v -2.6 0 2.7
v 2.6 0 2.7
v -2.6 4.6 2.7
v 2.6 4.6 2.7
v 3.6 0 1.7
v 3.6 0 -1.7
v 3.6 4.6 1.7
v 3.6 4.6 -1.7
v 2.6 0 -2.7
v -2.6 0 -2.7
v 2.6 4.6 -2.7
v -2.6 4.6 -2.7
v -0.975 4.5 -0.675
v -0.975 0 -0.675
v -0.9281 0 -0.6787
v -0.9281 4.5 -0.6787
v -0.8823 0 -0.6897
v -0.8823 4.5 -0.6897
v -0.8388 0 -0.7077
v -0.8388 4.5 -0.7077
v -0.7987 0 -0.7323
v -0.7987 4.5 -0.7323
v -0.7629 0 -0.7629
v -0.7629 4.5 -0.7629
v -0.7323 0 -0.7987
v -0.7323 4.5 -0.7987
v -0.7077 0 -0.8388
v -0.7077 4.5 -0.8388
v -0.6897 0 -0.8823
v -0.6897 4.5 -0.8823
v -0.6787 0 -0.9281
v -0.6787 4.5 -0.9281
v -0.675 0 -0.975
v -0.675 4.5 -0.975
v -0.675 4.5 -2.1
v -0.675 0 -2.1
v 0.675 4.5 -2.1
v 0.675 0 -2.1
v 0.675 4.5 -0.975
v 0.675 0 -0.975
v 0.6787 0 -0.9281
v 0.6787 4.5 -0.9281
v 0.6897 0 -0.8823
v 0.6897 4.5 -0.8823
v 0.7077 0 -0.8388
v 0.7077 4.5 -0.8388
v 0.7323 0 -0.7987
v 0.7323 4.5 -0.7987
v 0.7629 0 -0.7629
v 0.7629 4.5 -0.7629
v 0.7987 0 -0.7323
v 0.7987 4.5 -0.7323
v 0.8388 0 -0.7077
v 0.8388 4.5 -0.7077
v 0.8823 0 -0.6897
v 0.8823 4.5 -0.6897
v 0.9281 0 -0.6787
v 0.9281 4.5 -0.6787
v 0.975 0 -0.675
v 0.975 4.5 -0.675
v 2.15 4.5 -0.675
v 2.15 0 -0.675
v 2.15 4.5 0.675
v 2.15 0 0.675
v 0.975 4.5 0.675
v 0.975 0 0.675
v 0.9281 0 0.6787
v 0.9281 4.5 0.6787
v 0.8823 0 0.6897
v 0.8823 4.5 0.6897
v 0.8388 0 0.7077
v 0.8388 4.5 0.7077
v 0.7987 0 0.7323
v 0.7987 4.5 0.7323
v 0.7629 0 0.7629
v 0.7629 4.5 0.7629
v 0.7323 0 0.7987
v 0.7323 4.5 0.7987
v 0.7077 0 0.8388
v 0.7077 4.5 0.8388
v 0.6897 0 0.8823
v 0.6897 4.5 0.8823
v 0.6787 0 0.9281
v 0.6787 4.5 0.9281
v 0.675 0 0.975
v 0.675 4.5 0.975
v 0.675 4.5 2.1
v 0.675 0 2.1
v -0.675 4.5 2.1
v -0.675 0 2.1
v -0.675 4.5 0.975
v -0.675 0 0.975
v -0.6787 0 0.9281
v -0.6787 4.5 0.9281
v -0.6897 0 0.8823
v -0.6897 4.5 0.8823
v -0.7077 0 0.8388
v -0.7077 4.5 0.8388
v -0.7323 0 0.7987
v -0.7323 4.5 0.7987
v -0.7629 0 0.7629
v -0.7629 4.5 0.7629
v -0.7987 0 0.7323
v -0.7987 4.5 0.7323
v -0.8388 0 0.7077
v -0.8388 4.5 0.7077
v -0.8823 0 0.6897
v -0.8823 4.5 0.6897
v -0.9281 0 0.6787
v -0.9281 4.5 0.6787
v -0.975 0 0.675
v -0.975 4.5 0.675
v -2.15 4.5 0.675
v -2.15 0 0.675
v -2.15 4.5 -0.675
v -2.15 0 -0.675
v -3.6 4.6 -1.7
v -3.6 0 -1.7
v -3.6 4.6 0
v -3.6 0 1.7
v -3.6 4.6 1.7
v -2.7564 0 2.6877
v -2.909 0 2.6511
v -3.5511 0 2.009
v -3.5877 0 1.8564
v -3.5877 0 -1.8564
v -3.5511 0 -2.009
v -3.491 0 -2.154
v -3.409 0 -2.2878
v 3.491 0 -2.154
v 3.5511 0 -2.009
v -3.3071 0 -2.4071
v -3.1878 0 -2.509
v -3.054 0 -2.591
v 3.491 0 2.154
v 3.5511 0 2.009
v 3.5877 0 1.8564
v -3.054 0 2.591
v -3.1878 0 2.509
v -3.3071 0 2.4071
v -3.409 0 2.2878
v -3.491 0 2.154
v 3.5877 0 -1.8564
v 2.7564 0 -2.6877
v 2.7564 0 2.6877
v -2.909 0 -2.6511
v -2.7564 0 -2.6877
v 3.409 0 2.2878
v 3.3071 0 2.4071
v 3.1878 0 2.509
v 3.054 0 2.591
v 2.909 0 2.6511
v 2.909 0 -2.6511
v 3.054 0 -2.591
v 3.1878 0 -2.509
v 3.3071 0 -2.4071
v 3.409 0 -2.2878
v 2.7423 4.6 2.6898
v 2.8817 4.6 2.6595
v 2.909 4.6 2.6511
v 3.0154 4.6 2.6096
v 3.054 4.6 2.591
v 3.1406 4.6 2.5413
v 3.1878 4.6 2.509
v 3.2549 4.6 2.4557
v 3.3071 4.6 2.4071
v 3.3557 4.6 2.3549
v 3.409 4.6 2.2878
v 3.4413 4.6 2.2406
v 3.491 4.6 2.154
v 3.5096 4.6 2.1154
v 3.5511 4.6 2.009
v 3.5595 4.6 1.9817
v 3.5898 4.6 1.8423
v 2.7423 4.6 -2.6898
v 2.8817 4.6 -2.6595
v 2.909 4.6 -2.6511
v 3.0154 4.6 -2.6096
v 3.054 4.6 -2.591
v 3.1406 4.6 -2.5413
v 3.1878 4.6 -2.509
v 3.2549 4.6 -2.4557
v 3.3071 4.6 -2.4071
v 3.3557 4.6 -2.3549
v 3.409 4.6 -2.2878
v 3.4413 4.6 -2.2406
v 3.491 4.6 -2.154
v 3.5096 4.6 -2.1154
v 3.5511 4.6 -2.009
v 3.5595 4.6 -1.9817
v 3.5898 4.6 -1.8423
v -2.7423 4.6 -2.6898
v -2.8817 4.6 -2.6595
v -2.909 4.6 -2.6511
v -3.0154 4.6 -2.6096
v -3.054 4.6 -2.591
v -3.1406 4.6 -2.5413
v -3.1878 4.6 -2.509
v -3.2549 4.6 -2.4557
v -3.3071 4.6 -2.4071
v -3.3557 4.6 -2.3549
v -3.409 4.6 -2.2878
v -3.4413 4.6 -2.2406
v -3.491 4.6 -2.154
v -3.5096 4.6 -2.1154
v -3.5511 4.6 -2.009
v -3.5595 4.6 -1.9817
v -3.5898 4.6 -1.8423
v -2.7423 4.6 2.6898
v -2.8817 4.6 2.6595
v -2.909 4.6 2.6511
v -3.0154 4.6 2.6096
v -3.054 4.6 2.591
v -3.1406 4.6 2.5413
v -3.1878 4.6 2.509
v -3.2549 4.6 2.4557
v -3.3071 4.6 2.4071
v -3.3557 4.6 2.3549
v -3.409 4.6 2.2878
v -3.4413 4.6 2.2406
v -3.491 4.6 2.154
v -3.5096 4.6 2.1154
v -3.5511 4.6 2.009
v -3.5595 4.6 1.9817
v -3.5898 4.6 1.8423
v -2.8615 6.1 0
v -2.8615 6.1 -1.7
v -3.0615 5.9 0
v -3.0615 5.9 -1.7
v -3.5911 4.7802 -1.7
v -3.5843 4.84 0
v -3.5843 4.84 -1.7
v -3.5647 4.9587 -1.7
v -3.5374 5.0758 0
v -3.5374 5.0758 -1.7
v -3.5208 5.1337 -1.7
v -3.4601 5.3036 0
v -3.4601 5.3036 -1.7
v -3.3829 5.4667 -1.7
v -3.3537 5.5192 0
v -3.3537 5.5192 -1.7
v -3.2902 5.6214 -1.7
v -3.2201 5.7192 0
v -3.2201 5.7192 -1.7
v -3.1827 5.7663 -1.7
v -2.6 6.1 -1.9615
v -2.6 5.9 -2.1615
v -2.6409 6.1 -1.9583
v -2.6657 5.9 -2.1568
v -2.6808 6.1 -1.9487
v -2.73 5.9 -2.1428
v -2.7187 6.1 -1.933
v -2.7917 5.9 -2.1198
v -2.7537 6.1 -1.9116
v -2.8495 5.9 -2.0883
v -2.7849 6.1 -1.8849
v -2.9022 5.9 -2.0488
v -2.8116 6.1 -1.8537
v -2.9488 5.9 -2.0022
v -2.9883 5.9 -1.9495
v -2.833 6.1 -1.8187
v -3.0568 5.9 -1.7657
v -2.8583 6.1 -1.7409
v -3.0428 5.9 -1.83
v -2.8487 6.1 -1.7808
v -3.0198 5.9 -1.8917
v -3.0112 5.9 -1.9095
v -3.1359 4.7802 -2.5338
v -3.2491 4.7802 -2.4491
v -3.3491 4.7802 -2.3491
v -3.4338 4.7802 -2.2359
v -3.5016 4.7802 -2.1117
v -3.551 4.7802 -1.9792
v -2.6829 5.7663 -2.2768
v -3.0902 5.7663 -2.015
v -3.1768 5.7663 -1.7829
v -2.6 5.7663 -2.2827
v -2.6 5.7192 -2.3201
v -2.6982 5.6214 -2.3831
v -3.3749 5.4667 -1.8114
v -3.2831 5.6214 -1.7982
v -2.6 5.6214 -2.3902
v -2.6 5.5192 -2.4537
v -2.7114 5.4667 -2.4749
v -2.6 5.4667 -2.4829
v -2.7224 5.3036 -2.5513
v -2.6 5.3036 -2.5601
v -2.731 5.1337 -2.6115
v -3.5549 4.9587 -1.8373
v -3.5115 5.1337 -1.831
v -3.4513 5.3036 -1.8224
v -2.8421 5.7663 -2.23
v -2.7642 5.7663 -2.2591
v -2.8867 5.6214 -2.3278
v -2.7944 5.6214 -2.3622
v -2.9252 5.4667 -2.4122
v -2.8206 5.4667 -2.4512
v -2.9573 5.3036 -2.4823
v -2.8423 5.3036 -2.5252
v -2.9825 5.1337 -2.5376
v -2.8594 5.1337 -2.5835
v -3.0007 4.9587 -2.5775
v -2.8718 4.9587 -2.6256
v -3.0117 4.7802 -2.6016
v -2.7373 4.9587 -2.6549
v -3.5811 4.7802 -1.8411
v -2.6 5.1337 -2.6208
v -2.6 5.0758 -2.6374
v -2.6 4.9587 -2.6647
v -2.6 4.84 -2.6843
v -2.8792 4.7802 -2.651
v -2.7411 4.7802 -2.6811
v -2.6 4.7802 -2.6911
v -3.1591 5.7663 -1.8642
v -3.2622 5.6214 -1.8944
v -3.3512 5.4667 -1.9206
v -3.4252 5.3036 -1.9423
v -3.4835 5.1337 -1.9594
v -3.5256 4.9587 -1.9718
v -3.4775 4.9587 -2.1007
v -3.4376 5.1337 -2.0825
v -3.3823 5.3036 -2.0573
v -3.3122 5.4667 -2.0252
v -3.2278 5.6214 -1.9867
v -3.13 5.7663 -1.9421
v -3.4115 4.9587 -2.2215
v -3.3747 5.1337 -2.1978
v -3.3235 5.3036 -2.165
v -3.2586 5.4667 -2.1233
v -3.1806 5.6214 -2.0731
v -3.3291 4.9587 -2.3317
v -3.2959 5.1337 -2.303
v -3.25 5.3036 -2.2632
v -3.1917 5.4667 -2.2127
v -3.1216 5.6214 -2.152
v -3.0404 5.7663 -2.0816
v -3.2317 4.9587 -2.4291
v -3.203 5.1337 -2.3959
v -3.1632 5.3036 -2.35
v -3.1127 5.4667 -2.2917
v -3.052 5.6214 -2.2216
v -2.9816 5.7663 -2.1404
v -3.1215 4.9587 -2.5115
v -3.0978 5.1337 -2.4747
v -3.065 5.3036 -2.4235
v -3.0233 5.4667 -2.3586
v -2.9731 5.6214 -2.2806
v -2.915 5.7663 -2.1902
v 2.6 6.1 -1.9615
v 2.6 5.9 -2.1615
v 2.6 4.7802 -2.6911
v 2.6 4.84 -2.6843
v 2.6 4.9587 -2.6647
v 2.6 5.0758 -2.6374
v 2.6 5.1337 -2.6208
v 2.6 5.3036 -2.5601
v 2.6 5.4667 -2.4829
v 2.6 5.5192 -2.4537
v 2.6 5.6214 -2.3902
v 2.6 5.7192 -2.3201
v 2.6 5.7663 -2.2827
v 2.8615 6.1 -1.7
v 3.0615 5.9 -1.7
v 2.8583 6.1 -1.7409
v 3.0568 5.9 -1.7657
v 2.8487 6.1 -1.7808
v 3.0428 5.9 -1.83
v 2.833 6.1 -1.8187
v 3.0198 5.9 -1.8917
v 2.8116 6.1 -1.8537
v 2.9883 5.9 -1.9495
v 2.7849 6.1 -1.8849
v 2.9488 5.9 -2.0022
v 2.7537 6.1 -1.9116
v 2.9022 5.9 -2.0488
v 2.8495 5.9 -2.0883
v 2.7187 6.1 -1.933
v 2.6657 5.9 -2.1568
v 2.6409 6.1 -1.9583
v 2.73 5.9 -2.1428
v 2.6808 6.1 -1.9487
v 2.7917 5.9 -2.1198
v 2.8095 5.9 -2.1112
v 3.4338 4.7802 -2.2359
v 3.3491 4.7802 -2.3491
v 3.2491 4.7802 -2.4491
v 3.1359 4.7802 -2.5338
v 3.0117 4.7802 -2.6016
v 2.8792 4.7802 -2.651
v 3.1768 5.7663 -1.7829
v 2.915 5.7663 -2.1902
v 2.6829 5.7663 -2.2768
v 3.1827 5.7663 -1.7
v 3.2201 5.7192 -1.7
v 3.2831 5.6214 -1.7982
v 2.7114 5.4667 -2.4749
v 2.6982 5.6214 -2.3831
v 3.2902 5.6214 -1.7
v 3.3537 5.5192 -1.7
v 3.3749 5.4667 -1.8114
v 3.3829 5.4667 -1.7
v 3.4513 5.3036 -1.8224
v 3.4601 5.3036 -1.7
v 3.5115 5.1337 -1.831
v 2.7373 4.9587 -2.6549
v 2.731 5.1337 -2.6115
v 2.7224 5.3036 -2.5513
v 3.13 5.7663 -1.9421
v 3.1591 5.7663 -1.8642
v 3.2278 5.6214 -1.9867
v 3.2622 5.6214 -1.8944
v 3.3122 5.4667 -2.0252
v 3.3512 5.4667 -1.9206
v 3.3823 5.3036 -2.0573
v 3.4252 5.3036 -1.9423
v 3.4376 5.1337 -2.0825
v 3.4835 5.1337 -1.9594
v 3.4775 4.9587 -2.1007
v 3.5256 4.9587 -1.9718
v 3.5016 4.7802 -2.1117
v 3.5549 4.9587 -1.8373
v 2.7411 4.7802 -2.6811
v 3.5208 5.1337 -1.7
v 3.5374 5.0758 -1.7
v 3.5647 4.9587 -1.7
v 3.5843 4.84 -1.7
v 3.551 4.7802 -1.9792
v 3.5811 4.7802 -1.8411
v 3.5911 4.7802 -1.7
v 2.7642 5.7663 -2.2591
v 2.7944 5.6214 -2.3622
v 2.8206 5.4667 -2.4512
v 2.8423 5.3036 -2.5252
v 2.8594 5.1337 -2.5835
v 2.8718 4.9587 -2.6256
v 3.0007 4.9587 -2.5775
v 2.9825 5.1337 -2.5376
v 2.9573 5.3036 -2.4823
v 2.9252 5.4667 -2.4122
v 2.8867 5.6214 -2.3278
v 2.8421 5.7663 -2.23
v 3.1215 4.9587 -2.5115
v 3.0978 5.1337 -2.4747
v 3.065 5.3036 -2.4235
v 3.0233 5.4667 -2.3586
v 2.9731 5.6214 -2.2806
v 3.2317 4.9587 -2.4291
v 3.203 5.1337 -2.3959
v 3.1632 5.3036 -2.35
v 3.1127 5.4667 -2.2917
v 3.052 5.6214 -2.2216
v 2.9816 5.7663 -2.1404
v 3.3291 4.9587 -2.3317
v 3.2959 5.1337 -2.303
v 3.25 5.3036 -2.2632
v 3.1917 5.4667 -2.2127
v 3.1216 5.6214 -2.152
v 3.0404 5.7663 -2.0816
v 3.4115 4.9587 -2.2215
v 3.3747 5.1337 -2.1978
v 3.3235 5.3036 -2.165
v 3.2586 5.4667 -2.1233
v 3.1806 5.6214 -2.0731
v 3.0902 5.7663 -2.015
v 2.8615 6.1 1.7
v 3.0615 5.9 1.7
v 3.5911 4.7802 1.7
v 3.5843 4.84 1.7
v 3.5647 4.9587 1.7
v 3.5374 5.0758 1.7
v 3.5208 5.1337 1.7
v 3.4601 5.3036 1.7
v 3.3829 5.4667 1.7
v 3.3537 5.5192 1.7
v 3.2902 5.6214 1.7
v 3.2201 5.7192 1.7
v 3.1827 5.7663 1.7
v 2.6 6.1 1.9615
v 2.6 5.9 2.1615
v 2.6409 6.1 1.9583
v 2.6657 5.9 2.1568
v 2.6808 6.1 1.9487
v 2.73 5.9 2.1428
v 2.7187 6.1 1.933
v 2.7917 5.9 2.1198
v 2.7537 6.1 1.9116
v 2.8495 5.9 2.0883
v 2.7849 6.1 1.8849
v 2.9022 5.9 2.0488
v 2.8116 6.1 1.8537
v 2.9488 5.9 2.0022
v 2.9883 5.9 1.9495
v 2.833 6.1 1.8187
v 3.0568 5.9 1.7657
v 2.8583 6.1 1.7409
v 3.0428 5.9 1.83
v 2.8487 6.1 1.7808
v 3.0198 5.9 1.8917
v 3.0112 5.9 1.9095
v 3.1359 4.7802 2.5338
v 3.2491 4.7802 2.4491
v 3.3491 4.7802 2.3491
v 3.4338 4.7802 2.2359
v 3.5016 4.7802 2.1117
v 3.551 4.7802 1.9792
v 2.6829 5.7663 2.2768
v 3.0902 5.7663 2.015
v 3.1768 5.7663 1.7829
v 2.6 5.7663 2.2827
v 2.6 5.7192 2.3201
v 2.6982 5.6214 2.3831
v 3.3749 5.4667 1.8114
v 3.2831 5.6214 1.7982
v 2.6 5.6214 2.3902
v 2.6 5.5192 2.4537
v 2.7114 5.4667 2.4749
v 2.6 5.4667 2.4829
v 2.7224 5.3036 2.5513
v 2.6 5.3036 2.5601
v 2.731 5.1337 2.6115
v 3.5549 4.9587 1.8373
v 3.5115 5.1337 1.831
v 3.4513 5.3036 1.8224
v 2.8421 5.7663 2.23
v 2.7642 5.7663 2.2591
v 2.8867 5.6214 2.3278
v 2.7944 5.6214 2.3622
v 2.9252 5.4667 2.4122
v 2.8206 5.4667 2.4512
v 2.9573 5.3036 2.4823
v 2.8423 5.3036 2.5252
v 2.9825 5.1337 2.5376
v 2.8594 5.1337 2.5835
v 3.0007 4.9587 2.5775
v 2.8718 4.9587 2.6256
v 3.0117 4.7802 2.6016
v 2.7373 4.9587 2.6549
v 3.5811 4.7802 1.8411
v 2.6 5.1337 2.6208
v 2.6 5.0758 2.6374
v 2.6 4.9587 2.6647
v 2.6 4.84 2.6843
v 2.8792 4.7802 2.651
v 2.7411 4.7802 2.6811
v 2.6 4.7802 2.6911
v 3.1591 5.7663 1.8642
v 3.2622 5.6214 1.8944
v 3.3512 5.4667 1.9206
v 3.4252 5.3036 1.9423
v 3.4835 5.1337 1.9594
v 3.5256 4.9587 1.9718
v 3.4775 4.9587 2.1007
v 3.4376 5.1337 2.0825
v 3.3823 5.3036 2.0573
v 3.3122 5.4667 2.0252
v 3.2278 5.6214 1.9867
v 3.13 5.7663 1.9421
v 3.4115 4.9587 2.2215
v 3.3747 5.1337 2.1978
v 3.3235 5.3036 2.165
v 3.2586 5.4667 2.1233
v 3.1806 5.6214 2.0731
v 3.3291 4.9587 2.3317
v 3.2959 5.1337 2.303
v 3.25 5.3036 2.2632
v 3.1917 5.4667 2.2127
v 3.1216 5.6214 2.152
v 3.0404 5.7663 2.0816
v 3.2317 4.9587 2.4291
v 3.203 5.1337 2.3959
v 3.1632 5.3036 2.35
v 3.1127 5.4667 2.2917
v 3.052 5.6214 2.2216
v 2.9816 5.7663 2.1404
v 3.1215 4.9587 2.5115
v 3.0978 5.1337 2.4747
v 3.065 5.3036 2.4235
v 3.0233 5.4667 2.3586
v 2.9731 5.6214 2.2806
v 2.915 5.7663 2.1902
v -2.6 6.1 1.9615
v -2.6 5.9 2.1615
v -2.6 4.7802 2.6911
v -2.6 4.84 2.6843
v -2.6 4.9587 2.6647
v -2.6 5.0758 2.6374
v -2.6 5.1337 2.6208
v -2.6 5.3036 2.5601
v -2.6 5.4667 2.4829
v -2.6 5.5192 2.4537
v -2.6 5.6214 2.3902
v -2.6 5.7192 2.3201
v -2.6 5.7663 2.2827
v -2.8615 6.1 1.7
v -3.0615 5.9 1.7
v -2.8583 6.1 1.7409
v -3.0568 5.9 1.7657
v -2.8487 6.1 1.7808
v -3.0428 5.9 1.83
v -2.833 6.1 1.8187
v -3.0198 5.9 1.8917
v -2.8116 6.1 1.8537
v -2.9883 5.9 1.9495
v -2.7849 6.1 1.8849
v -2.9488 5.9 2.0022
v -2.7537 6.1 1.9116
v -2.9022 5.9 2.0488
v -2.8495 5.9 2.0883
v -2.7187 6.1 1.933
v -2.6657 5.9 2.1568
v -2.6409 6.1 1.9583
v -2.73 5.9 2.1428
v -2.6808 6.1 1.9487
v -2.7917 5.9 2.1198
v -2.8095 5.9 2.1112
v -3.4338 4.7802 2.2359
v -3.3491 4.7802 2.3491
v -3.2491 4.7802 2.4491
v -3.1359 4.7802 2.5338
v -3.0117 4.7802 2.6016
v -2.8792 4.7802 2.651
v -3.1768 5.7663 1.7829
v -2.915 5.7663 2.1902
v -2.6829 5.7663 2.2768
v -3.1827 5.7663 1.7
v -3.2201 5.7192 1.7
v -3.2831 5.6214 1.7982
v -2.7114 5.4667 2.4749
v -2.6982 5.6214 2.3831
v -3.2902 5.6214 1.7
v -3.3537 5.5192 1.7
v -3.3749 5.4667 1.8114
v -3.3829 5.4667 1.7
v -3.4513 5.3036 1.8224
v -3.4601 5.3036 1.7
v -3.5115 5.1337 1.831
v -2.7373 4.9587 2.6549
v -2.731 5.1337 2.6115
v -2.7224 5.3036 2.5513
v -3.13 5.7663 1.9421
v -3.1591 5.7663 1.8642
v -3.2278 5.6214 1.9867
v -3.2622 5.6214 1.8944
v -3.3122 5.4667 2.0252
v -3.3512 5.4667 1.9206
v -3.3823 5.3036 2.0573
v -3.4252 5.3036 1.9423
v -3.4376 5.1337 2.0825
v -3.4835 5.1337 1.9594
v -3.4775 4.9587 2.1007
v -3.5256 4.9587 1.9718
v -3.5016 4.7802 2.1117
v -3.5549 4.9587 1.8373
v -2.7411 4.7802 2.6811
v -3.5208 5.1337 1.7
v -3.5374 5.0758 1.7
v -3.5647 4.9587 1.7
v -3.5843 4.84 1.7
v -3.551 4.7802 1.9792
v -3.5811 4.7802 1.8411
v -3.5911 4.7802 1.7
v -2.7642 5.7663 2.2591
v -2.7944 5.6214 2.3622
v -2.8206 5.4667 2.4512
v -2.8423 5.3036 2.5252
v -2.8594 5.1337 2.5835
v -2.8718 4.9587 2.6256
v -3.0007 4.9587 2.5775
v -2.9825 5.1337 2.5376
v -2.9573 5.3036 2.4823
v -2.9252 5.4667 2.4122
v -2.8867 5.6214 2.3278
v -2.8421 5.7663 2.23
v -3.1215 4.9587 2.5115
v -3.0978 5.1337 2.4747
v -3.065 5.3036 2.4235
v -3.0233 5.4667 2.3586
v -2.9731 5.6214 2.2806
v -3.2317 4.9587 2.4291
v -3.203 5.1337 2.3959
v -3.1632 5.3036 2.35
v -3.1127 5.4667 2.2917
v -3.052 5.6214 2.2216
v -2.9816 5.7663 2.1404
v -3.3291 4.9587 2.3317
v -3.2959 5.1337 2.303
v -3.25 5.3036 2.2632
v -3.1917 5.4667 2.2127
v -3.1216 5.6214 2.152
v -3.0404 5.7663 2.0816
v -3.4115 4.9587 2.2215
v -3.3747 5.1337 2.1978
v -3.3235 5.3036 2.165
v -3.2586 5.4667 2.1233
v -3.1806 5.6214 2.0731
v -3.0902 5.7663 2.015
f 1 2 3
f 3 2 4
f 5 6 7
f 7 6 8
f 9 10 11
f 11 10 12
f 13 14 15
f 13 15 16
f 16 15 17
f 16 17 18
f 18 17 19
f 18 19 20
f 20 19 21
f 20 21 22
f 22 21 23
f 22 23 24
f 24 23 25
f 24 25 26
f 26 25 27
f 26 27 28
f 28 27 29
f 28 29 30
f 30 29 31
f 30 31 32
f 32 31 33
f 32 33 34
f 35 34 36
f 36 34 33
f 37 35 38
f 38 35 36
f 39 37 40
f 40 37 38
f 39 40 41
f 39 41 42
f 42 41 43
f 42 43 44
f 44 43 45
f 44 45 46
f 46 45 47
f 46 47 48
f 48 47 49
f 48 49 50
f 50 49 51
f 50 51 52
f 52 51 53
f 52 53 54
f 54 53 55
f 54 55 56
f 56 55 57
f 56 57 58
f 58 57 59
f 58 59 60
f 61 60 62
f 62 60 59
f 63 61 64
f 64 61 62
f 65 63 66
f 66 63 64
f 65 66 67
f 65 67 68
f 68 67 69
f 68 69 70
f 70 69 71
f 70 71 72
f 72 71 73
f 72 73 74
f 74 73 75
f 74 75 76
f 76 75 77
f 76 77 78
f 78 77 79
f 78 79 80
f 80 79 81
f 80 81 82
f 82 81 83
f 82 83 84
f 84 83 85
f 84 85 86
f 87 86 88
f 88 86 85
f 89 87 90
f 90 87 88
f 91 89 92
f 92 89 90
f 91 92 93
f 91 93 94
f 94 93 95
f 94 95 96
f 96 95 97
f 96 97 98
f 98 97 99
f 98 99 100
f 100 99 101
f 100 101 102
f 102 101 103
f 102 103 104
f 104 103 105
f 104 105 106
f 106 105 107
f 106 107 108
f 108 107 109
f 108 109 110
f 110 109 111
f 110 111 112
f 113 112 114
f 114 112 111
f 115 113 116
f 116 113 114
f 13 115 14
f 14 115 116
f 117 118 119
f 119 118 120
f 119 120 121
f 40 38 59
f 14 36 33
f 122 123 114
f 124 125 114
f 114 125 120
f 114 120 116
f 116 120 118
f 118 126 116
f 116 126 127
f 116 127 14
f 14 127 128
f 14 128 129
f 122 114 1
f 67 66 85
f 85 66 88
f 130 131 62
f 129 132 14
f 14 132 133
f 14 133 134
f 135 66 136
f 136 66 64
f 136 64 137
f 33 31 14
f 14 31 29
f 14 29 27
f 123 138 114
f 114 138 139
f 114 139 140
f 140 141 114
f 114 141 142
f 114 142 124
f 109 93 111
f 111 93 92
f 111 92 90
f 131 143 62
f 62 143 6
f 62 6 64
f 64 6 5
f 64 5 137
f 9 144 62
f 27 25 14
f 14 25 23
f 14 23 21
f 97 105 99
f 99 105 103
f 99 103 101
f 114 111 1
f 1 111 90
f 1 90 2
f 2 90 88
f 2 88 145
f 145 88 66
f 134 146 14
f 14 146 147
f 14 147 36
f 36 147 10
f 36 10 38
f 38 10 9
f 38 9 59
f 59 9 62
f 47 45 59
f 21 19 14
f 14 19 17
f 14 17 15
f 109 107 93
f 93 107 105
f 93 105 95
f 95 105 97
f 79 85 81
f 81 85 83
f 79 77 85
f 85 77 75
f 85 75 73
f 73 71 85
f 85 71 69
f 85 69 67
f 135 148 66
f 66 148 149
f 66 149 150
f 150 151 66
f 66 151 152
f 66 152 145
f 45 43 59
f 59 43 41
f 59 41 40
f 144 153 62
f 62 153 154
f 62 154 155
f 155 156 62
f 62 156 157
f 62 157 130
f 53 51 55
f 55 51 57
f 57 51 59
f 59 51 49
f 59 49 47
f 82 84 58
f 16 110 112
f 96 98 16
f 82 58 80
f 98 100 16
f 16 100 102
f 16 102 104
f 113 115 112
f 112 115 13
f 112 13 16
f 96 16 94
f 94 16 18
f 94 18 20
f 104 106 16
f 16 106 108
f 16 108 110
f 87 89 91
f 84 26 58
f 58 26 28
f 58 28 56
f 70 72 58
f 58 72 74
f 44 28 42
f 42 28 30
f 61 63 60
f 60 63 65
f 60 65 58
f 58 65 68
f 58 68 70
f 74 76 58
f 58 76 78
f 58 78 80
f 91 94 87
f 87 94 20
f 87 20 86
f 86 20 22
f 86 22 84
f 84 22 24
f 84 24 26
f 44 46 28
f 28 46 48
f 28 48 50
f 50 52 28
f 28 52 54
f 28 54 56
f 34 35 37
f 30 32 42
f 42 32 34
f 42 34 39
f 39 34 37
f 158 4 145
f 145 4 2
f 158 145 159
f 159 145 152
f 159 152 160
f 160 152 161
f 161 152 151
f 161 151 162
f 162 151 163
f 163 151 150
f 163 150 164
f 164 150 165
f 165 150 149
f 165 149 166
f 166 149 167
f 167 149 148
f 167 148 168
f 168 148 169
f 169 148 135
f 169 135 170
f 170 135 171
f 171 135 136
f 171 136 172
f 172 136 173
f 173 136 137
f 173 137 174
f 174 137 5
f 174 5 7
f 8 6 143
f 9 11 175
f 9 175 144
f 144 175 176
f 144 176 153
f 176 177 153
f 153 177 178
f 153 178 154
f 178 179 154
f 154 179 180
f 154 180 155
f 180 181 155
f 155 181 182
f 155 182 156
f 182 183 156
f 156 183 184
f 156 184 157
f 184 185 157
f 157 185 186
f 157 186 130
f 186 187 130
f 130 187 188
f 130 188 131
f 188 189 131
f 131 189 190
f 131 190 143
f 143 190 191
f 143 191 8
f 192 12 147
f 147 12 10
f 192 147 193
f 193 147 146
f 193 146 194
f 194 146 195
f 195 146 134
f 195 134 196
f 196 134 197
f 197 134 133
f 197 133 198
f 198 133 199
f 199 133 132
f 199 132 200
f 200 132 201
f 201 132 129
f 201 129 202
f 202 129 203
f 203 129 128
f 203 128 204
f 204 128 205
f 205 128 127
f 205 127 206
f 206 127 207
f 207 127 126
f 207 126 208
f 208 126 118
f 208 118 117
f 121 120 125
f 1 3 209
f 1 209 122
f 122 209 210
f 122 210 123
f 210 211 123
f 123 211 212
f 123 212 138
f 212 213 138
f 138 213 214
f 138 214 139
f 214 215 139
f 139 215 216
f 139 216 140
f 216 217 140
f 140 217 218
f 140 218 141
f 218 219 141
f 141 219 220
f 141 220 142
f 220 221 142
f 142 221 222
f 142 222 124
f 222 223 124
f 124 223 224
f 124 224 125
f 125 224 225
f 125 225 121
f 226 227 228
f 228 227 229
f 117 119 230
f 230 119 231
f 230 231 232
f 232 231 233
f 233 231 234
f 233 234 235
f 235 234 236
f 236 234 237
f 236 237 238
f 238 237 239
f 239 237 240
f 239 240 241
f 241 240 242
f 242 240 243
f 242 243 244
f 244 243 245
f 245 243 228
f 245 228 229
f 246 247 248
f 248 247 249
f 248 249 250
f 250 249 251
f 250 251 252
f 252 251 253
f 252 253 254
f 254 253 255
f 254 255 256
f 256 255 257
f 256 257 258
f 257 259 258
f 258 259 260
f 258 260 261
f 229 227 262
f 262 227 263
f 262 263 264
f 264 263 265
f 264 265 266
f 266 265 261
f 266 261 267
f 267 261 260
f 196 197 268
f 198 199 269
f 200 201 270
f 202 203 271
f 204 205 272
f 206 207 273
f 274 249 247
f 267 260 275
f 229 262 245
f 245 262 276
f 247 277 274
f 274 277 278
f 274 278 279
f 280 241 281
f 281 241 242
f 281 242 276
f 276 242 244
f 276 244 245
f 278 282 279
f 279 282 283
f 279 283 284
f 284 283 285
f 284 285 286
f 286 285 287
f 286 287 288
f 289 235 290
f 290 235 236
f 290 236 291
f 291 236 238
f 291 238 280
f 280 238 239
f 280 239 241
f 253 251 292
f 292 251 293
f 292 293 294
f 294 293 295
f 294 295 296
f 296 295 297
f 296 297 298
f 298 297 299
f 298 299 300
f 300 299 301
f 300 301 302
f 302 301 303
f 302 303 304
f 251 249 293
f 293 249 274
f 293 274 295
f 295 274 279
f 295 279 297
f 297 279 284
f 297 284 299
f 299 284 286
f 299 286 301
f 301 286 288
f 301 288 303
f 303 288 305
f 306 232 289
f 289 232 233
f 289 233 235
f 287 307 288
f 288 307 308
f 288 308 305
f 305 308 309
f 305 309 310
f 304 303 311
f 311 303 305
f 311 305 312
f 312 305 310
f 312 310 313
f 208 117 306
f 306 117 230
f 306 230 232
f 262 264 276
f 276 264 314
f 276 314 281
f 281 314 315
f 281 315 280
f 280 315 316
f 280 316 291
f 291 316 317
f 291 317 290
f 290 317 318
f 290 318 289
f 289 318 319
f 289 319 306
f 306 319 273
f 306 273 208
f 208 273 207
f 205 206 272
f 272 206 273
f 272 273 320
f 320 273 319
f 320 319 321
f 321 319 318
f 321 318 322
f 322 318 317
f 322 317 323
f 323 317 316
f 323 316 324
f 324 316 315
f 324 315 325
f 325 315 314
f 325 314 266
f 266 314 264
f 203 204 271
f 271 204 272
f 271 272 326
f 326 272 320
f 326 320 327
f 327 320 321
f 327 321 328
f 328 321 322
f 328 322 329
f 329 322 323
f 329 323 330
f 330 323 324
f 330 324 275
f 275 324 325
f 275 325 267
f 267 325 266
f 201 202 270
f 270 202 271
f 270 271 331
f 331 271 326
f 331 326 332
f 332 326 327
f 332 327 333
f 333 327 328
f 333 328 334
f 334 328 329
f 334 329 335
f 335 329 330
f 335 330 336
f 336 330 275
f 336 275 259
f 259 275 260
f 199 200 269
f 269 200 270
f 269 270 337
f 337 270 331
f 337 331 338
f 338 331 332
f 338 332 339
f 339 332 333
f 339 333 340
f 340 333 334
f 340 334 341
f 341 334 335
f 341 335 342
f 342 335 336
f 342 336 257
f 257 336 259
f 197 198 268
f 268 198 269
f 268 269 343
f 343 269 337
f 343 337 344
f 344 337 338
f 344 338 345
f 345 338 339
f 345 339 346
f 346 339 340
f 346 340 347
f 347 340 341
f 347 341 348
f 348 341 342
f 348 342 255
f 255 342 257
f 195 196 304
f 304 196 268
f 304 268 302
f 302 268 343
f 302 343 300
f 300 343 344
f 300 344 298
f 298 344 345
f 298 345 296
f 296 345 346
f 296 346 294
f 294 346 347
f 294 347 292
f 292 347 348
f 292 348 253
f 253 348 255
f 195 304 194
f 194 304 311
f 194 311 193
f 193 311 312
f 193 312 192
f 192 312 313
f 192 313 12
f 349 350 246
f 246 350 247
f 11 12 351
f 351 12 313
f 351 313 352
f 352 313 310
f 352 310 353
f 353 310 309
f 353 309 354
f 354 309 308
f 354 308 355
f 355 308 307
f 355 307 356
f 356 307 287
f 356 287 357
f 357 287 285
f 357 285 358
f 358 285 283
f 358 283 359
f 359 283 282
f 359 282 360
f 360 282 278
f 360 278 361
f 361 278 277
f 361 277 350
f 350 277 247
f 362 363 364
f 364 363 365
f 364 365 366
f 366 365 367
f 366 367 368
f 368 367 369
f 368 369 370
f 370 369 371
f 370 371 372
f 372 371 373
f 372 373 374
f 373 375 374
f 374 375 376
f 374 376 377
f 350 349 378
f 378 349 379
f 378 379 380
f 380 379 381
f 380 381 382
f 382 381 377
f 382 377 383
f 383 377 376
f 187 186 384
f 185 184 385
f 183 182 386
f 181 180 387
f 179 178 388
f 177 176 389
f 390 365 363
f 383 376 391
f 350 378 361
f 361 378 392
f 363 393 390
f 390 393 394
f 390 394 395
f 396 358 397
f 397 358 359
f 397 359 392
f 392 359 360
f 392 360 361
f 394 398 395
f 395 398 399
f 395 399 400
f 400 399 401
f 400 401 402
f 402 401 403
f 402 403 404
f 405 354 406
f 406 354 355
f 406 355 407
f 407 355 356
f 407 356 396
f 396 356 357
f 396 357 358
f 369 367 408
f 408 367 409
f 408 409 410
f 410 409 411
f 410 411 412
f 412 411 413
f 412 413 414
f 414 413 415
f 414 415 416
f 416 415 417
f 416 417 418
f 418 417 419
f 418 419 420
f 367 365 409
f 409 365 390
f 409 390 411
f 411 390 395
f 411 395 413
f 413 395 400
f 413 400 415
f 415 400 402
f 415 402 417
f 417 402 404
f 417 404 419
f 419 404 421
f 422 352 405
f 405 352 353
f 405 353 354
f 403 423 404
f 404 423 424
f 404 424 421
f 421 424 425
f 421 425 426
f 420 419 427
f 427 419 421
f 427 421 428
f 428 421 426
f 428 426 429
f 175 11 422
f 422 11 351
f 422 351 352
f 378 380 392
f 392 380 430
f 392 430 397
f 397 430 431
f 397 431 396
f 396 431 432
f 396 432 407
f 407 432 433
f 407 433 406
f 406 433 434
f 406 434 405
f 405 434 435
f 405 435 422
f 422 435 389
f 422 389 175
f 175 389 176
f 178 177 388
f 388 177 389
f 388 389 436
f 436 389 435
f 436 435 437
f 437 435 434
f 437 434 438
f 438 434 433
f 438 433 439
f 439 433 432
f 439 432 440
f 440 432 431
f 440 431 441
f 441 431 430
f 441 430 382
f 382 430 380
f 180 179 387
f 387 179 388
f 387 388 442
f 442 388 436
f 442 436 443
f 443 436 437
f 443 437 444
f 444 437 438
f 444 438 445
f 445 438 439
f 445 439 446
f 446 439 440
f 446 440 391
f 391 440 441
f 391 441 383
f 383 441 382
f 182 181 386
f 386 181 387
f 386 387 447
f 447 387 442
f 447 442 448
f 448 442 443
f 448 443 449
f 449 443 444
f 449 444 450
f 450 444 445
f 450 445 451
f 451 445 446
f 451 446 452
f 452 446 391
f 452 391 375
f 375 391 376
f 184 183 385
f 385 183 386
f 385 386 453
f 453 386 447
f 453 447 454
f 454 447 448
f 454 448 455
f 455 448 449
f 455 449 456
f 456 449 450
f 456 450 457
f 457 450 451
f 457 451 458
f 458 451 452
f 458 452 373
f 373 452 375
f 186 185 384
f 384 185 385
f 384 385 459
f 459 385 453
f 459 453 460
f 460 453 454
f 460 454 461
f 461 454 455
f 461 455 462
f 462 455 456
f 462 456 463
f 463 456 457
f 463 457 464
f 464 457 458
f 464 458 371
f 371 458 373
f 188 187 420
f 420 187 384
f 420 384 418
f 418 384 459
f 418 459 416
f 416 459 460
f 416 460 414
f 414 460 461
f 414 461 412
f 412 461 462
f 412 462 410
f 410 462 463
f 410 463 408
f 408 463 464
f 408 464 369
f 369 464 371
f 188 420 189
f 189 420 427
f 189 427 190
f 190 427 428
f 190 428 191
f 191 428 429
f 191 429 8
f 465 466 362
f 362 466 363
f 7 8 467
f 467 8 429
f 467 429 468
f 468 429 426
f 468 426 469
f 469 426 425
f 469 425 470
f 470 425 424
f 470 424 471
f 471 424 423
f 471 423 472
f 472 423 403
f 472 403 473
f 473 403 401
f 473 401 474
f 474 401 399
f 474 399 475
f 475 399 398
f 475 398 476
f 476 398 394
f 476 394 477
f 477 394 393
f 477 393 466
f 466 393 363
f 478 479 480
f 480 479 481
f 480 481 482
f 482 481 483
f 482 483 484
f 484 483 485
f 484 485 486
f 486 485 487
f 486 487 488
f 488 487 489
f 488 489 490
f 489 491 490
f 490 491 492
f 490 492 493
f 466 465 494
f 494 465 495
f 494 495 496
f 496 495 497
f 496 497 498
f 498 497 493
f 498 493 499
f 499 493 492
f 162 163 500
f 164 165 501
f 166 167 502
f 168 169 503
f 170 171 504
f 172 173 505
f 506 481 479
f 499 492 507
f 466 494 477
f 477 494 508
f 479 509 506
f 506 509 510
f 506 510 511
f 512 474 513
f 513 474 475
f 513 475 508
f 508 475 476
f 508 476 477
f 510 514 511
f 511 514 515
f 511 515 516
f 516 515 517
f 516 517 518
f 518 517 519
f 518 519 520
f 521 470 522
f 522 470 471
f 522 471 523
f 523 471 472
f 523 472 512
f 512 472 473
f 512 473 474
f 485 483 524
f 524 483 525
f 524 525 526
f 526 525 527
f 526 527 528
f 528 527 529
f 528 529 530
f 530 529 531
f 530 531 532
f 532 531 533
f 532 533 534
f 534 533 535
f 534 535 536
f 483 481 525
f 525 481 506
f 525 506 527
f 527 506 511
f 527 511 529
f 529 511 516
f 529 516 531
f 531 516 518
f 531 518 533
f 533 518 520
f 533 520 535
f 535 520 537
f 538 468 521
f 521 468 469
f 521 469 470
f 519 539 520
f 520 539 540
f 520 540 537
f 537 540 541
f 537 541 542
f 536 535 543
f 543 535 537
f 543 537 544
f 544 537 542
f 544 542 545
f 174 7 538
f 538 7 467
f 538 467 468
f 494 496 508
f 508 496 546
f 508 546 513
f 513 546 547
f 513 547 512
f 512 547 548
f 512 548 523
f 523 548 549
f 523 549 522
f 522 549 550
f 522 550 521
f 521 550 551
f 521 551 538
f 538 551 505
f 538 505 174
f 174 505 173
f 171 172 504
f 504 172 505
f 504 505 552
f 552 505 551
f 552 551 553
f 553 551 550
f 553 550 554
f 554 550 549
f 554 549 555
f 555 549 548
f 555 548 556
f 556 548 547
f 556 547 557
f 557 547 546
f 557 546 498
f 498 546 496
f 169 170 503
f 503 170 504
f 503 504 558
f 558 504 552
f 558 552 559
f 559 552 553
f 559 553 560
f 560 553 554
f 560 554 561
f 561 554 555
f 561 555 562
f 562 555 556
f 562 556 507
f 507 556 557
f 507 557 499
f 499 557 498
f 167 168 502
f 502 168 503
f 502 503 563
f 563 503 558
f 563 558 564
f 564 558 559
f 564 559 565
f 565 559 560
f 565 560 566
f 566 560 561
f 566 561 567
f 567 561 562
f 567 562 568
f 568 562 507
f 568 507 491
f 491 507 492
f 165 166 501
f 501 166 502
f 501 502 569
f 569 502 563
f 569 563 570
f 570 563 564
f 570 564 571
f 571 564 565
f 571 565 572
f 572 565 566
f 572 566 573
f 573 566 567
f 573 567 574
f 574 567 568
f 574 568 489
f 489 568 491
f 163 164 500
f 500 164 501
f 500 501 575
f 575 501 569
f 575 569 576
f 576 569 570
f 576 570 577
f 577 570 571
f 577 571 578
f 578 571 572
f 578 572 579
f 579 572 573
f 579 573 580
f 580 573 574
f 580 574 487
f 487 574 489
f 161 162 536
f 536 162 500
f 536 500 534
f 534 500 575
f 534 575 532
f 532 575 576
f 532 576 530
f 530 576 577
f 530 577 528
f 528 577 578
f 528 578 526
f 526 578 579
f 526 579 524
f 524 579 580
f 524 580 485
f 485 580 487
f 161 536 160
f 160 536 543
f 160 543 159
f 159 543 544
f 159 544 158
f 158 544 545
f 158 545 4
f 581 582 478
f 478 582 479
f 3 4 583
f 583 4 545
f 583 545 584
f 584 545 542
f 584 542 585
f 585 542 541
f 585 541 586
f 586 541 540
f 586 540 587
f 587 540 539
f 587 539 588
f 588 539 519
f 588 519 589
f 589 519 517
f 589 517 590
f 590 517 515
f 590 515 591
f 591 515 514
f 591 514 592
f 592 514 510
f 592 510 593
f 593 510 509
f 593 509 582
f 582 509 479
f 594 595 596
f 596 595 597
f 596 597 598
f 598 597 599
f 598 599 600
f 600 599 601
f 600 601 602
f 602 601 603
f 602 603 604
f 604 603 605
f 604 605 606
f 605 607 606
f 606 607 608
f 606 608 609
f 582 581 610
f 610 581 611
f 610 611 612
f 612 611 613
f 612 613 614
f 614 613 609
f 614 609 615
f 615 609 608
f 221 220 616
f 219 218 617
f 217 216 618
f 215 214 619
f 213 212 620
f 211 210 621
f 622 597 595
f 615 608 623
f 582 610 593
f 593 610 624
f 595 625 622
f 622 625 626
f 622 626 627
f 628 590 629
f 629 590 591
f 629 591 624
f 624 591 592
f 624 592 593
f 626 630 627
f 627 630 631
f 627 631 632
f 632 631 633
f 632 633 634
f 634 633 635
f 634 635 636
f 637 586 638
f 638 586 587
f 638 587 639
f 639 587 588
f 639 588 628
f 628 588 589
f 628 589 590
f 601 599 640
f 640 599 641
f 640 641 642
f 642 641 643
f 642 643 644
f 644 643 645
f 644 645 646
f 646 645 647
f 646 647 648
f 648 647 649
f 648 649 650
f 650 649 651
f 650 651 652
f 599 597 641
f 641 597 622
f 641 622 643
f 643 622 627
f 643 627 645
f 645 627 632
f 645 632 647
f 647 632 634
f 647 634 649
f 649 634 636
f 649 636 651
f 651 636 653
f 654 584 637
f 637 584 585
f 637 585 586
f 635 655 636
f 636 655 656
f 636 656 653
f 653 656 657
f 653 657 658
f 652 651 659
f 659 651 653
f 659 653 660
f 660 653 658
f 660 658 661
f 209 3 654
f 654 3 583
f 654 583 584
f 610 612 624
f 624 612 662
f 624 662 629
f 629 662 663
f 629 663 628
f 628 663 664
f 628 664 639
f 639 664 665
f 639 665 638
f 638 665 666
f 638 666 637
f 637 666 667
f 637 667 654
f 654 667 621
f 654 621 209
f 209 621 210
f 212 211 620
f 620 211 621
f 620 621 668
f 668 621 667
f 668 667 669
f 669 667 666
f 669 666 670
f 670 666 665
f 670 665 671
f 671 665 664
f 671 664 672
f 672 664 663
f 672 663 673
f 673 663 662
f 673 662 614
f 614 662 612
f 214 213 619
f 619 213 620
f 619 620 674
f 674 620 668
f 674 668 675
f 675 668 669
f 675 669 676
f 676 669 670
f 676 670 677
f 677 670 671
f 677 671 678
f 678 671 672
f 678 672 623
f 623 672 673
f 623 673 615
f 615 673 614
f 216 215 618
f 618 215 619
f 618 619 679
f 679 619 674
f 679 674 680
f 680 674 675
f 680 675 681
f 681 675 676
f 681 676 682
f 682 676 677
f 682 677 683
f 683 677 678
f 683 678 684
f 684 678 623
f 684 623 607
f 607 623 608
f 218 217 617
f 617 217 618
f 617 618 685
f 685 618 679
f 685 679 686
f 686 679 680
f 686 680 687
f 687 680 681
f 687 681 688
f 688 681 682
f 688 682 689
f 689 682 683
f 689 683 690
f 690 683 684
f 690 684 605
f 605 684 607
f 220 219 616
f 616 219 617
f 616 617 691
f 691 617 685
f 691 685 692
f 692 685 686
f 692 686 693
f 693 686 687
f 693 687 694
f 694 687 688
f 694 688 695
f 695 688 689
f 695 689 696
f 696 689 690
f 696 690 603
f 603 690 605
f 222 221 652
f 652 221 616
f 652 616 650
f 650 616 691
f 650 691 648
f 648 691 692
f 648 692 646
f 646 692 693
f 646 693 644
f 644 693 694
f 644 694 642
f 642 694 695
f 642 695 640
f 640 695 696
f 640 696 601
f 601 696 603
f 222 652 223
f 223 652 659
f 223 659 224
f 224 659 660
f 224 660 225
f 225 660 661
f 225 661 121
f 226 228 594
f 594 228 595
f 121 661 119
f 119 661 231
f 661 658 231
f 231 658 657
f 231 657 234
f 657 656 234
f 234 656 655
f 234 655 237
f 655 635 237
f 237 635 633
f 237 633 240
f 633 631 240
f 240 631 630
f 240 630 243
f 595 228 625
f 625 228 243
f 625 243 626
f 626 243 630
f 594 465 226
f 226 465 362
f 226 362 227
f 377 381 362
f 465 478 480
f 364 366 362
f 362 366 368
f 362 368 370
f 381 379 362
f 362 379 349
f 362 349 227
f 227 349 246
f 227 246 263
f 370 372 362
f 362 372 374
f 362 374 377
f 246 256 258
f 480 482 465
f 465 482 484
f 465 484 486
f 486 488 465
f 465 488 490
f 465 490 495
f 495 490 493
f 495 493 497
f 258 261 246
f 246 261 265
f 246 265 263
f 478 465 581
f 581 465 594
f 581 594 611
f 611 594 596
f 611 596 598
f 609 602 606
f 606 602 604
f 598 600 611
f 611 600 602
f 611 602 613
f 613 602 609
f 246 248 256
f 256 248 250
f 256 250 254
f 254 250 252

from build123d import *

# Parameters (mm, degrees)
SKETCH1_W           = 7.2
SKETCH1_H           = 5.4
STEM_HOUSING_DEPTH  = 4.5
SKETCH3_W           = 7.2
SKETCH3_H           = 5.4
BOSS_EXTRUDE2_DEPTH = 1.6
FILLET2_R           = 1


with BuildPart() as part:
    # Sketch1 → stem housing (new body)
    with BuildSketch(Plane(origin=(0, 0, 0), x_dir=(1, 0, 0), z_dir=(0, 1, 0))):
        Rectangle(SKETCH1_W, SKETCH1_H)
        with BuildLine():
            Line((-0.675, 0.975), (-0.675, 2.1))
            Line((-0.675, 2.1), (0.675, 2.1))
            Line((0.675, 2.1), (0.675, 0.975))
            ThreePointArc((0.675, 0.975), (0.762867966, 0.762867966), (0.975, 0.675))
            Line((0.975, 0.675), (2.15, 0.675))
            Line((2.15, 0.675), (2.15, -0.675))
            Line((2.15, -0.675), (0.975, -0.675))
            ThreePointArc((0.975, -0.675), (0.762867966, -0.762867966), (0.675, -0.975))
            Line((0.675, -0.975), (0.675, -2.1))
            Line((0.675, -2.1), (-0.675, -2.1))
            Line((-0.675, -2.1), (-0.675, -0.975))
            ThreePointArc((-0.675, -0.975), (-0.762867966, -0.762867966), (-0.975, -0.675))
            Line((-0.975, -0.675), (-2.15, -0.675))
            Line((-2.15, -0.675), (-2.15, 0.675))
            Line((-2.15, 0.675), (-0.975, 0.675))
            ThreePointArc((-0.975, 0.675), (-0.762867966, 0.762867966), (-0.675, 0.975))
        make_face(mode=Mode.SUBTRACT)
    extrude(amount=STEM_HOUSING_DEPTH)

    # Sketch3 → Boss-Extrude2 (add)
    with BuildSketch(Plane(origin=(0, 4.5, 0), x_dir=(1, 0, 0), z_dir=(0, 1, 0))):
        Rectangle(SKETCH3_W, SKETCH3_H)
    extrude(amount=BOSS_EXTRUDE2_DEPTH)

    # Fillet2
    fillet2_edges = [part.edges().sort_by_distance(p)[0] for p in [
        (-3.6, 3.05, 2.7),
        (-3.6, 3.05, -2.7),
        (3.6, 3.05, -2.7),
        (3.6, 3.05, 2.7),
    ]]
    fillet(fillet2_edges, radius=FILLET2_R)

    # Cut-Sweep1: sweep along a path in Sketch6
    with BuildLine(Plane(origin=(0, 6.1, 0), x_dir=(1, 0, 0), z_dir=(0, 1, 0))) as cut_sweep1_path:
        Line((-2.6, -2.7), (2.6, -2.7))
        ThreePointArc((2.6, -2.7), (3.307106781, -2.407106781), (3.6, -1.7))
        Line((3.6, -1.7), (3.6, 1.7))
        ThreePointArc((3.6, 1.7), (3.307106781, 2.407106781), (2.6, 2.7))
        Line((2.6, 2.7), (-2.6, 2.7))
        ThreePointArc((-2.6, 2.7), (-3.307106781, 2.407106781), (-3.6, 1.7))
        Line((-3.6, 1.7), (-3.6, -1.7))
        ThreePointArc((-3.6, -1.7), (-3.307106781, -2.407106781), (-2.6, -2.7))
    # Sketch4 → Cut-Sweep1 (sweep, cut)
    with BuildSketch(Plane.XY):
        with BuildLine():
            Line((-2.861522369, 6.1), (-3.061522369, 5.9))
            ThreePointArc((-3.061522369, 5.9), (-3.460054223, 5.30355493), (-3.6, 4.6))
            Line((-3.6, 4.6), (-3.6, 6.1))
            Line((-3.6, 6.1), (-2.861522369, 6.1))
        make_face()
    sweep(path=cut_sweep1_path.line, mode=Mode.SUBTRACT)


solid = part.part
